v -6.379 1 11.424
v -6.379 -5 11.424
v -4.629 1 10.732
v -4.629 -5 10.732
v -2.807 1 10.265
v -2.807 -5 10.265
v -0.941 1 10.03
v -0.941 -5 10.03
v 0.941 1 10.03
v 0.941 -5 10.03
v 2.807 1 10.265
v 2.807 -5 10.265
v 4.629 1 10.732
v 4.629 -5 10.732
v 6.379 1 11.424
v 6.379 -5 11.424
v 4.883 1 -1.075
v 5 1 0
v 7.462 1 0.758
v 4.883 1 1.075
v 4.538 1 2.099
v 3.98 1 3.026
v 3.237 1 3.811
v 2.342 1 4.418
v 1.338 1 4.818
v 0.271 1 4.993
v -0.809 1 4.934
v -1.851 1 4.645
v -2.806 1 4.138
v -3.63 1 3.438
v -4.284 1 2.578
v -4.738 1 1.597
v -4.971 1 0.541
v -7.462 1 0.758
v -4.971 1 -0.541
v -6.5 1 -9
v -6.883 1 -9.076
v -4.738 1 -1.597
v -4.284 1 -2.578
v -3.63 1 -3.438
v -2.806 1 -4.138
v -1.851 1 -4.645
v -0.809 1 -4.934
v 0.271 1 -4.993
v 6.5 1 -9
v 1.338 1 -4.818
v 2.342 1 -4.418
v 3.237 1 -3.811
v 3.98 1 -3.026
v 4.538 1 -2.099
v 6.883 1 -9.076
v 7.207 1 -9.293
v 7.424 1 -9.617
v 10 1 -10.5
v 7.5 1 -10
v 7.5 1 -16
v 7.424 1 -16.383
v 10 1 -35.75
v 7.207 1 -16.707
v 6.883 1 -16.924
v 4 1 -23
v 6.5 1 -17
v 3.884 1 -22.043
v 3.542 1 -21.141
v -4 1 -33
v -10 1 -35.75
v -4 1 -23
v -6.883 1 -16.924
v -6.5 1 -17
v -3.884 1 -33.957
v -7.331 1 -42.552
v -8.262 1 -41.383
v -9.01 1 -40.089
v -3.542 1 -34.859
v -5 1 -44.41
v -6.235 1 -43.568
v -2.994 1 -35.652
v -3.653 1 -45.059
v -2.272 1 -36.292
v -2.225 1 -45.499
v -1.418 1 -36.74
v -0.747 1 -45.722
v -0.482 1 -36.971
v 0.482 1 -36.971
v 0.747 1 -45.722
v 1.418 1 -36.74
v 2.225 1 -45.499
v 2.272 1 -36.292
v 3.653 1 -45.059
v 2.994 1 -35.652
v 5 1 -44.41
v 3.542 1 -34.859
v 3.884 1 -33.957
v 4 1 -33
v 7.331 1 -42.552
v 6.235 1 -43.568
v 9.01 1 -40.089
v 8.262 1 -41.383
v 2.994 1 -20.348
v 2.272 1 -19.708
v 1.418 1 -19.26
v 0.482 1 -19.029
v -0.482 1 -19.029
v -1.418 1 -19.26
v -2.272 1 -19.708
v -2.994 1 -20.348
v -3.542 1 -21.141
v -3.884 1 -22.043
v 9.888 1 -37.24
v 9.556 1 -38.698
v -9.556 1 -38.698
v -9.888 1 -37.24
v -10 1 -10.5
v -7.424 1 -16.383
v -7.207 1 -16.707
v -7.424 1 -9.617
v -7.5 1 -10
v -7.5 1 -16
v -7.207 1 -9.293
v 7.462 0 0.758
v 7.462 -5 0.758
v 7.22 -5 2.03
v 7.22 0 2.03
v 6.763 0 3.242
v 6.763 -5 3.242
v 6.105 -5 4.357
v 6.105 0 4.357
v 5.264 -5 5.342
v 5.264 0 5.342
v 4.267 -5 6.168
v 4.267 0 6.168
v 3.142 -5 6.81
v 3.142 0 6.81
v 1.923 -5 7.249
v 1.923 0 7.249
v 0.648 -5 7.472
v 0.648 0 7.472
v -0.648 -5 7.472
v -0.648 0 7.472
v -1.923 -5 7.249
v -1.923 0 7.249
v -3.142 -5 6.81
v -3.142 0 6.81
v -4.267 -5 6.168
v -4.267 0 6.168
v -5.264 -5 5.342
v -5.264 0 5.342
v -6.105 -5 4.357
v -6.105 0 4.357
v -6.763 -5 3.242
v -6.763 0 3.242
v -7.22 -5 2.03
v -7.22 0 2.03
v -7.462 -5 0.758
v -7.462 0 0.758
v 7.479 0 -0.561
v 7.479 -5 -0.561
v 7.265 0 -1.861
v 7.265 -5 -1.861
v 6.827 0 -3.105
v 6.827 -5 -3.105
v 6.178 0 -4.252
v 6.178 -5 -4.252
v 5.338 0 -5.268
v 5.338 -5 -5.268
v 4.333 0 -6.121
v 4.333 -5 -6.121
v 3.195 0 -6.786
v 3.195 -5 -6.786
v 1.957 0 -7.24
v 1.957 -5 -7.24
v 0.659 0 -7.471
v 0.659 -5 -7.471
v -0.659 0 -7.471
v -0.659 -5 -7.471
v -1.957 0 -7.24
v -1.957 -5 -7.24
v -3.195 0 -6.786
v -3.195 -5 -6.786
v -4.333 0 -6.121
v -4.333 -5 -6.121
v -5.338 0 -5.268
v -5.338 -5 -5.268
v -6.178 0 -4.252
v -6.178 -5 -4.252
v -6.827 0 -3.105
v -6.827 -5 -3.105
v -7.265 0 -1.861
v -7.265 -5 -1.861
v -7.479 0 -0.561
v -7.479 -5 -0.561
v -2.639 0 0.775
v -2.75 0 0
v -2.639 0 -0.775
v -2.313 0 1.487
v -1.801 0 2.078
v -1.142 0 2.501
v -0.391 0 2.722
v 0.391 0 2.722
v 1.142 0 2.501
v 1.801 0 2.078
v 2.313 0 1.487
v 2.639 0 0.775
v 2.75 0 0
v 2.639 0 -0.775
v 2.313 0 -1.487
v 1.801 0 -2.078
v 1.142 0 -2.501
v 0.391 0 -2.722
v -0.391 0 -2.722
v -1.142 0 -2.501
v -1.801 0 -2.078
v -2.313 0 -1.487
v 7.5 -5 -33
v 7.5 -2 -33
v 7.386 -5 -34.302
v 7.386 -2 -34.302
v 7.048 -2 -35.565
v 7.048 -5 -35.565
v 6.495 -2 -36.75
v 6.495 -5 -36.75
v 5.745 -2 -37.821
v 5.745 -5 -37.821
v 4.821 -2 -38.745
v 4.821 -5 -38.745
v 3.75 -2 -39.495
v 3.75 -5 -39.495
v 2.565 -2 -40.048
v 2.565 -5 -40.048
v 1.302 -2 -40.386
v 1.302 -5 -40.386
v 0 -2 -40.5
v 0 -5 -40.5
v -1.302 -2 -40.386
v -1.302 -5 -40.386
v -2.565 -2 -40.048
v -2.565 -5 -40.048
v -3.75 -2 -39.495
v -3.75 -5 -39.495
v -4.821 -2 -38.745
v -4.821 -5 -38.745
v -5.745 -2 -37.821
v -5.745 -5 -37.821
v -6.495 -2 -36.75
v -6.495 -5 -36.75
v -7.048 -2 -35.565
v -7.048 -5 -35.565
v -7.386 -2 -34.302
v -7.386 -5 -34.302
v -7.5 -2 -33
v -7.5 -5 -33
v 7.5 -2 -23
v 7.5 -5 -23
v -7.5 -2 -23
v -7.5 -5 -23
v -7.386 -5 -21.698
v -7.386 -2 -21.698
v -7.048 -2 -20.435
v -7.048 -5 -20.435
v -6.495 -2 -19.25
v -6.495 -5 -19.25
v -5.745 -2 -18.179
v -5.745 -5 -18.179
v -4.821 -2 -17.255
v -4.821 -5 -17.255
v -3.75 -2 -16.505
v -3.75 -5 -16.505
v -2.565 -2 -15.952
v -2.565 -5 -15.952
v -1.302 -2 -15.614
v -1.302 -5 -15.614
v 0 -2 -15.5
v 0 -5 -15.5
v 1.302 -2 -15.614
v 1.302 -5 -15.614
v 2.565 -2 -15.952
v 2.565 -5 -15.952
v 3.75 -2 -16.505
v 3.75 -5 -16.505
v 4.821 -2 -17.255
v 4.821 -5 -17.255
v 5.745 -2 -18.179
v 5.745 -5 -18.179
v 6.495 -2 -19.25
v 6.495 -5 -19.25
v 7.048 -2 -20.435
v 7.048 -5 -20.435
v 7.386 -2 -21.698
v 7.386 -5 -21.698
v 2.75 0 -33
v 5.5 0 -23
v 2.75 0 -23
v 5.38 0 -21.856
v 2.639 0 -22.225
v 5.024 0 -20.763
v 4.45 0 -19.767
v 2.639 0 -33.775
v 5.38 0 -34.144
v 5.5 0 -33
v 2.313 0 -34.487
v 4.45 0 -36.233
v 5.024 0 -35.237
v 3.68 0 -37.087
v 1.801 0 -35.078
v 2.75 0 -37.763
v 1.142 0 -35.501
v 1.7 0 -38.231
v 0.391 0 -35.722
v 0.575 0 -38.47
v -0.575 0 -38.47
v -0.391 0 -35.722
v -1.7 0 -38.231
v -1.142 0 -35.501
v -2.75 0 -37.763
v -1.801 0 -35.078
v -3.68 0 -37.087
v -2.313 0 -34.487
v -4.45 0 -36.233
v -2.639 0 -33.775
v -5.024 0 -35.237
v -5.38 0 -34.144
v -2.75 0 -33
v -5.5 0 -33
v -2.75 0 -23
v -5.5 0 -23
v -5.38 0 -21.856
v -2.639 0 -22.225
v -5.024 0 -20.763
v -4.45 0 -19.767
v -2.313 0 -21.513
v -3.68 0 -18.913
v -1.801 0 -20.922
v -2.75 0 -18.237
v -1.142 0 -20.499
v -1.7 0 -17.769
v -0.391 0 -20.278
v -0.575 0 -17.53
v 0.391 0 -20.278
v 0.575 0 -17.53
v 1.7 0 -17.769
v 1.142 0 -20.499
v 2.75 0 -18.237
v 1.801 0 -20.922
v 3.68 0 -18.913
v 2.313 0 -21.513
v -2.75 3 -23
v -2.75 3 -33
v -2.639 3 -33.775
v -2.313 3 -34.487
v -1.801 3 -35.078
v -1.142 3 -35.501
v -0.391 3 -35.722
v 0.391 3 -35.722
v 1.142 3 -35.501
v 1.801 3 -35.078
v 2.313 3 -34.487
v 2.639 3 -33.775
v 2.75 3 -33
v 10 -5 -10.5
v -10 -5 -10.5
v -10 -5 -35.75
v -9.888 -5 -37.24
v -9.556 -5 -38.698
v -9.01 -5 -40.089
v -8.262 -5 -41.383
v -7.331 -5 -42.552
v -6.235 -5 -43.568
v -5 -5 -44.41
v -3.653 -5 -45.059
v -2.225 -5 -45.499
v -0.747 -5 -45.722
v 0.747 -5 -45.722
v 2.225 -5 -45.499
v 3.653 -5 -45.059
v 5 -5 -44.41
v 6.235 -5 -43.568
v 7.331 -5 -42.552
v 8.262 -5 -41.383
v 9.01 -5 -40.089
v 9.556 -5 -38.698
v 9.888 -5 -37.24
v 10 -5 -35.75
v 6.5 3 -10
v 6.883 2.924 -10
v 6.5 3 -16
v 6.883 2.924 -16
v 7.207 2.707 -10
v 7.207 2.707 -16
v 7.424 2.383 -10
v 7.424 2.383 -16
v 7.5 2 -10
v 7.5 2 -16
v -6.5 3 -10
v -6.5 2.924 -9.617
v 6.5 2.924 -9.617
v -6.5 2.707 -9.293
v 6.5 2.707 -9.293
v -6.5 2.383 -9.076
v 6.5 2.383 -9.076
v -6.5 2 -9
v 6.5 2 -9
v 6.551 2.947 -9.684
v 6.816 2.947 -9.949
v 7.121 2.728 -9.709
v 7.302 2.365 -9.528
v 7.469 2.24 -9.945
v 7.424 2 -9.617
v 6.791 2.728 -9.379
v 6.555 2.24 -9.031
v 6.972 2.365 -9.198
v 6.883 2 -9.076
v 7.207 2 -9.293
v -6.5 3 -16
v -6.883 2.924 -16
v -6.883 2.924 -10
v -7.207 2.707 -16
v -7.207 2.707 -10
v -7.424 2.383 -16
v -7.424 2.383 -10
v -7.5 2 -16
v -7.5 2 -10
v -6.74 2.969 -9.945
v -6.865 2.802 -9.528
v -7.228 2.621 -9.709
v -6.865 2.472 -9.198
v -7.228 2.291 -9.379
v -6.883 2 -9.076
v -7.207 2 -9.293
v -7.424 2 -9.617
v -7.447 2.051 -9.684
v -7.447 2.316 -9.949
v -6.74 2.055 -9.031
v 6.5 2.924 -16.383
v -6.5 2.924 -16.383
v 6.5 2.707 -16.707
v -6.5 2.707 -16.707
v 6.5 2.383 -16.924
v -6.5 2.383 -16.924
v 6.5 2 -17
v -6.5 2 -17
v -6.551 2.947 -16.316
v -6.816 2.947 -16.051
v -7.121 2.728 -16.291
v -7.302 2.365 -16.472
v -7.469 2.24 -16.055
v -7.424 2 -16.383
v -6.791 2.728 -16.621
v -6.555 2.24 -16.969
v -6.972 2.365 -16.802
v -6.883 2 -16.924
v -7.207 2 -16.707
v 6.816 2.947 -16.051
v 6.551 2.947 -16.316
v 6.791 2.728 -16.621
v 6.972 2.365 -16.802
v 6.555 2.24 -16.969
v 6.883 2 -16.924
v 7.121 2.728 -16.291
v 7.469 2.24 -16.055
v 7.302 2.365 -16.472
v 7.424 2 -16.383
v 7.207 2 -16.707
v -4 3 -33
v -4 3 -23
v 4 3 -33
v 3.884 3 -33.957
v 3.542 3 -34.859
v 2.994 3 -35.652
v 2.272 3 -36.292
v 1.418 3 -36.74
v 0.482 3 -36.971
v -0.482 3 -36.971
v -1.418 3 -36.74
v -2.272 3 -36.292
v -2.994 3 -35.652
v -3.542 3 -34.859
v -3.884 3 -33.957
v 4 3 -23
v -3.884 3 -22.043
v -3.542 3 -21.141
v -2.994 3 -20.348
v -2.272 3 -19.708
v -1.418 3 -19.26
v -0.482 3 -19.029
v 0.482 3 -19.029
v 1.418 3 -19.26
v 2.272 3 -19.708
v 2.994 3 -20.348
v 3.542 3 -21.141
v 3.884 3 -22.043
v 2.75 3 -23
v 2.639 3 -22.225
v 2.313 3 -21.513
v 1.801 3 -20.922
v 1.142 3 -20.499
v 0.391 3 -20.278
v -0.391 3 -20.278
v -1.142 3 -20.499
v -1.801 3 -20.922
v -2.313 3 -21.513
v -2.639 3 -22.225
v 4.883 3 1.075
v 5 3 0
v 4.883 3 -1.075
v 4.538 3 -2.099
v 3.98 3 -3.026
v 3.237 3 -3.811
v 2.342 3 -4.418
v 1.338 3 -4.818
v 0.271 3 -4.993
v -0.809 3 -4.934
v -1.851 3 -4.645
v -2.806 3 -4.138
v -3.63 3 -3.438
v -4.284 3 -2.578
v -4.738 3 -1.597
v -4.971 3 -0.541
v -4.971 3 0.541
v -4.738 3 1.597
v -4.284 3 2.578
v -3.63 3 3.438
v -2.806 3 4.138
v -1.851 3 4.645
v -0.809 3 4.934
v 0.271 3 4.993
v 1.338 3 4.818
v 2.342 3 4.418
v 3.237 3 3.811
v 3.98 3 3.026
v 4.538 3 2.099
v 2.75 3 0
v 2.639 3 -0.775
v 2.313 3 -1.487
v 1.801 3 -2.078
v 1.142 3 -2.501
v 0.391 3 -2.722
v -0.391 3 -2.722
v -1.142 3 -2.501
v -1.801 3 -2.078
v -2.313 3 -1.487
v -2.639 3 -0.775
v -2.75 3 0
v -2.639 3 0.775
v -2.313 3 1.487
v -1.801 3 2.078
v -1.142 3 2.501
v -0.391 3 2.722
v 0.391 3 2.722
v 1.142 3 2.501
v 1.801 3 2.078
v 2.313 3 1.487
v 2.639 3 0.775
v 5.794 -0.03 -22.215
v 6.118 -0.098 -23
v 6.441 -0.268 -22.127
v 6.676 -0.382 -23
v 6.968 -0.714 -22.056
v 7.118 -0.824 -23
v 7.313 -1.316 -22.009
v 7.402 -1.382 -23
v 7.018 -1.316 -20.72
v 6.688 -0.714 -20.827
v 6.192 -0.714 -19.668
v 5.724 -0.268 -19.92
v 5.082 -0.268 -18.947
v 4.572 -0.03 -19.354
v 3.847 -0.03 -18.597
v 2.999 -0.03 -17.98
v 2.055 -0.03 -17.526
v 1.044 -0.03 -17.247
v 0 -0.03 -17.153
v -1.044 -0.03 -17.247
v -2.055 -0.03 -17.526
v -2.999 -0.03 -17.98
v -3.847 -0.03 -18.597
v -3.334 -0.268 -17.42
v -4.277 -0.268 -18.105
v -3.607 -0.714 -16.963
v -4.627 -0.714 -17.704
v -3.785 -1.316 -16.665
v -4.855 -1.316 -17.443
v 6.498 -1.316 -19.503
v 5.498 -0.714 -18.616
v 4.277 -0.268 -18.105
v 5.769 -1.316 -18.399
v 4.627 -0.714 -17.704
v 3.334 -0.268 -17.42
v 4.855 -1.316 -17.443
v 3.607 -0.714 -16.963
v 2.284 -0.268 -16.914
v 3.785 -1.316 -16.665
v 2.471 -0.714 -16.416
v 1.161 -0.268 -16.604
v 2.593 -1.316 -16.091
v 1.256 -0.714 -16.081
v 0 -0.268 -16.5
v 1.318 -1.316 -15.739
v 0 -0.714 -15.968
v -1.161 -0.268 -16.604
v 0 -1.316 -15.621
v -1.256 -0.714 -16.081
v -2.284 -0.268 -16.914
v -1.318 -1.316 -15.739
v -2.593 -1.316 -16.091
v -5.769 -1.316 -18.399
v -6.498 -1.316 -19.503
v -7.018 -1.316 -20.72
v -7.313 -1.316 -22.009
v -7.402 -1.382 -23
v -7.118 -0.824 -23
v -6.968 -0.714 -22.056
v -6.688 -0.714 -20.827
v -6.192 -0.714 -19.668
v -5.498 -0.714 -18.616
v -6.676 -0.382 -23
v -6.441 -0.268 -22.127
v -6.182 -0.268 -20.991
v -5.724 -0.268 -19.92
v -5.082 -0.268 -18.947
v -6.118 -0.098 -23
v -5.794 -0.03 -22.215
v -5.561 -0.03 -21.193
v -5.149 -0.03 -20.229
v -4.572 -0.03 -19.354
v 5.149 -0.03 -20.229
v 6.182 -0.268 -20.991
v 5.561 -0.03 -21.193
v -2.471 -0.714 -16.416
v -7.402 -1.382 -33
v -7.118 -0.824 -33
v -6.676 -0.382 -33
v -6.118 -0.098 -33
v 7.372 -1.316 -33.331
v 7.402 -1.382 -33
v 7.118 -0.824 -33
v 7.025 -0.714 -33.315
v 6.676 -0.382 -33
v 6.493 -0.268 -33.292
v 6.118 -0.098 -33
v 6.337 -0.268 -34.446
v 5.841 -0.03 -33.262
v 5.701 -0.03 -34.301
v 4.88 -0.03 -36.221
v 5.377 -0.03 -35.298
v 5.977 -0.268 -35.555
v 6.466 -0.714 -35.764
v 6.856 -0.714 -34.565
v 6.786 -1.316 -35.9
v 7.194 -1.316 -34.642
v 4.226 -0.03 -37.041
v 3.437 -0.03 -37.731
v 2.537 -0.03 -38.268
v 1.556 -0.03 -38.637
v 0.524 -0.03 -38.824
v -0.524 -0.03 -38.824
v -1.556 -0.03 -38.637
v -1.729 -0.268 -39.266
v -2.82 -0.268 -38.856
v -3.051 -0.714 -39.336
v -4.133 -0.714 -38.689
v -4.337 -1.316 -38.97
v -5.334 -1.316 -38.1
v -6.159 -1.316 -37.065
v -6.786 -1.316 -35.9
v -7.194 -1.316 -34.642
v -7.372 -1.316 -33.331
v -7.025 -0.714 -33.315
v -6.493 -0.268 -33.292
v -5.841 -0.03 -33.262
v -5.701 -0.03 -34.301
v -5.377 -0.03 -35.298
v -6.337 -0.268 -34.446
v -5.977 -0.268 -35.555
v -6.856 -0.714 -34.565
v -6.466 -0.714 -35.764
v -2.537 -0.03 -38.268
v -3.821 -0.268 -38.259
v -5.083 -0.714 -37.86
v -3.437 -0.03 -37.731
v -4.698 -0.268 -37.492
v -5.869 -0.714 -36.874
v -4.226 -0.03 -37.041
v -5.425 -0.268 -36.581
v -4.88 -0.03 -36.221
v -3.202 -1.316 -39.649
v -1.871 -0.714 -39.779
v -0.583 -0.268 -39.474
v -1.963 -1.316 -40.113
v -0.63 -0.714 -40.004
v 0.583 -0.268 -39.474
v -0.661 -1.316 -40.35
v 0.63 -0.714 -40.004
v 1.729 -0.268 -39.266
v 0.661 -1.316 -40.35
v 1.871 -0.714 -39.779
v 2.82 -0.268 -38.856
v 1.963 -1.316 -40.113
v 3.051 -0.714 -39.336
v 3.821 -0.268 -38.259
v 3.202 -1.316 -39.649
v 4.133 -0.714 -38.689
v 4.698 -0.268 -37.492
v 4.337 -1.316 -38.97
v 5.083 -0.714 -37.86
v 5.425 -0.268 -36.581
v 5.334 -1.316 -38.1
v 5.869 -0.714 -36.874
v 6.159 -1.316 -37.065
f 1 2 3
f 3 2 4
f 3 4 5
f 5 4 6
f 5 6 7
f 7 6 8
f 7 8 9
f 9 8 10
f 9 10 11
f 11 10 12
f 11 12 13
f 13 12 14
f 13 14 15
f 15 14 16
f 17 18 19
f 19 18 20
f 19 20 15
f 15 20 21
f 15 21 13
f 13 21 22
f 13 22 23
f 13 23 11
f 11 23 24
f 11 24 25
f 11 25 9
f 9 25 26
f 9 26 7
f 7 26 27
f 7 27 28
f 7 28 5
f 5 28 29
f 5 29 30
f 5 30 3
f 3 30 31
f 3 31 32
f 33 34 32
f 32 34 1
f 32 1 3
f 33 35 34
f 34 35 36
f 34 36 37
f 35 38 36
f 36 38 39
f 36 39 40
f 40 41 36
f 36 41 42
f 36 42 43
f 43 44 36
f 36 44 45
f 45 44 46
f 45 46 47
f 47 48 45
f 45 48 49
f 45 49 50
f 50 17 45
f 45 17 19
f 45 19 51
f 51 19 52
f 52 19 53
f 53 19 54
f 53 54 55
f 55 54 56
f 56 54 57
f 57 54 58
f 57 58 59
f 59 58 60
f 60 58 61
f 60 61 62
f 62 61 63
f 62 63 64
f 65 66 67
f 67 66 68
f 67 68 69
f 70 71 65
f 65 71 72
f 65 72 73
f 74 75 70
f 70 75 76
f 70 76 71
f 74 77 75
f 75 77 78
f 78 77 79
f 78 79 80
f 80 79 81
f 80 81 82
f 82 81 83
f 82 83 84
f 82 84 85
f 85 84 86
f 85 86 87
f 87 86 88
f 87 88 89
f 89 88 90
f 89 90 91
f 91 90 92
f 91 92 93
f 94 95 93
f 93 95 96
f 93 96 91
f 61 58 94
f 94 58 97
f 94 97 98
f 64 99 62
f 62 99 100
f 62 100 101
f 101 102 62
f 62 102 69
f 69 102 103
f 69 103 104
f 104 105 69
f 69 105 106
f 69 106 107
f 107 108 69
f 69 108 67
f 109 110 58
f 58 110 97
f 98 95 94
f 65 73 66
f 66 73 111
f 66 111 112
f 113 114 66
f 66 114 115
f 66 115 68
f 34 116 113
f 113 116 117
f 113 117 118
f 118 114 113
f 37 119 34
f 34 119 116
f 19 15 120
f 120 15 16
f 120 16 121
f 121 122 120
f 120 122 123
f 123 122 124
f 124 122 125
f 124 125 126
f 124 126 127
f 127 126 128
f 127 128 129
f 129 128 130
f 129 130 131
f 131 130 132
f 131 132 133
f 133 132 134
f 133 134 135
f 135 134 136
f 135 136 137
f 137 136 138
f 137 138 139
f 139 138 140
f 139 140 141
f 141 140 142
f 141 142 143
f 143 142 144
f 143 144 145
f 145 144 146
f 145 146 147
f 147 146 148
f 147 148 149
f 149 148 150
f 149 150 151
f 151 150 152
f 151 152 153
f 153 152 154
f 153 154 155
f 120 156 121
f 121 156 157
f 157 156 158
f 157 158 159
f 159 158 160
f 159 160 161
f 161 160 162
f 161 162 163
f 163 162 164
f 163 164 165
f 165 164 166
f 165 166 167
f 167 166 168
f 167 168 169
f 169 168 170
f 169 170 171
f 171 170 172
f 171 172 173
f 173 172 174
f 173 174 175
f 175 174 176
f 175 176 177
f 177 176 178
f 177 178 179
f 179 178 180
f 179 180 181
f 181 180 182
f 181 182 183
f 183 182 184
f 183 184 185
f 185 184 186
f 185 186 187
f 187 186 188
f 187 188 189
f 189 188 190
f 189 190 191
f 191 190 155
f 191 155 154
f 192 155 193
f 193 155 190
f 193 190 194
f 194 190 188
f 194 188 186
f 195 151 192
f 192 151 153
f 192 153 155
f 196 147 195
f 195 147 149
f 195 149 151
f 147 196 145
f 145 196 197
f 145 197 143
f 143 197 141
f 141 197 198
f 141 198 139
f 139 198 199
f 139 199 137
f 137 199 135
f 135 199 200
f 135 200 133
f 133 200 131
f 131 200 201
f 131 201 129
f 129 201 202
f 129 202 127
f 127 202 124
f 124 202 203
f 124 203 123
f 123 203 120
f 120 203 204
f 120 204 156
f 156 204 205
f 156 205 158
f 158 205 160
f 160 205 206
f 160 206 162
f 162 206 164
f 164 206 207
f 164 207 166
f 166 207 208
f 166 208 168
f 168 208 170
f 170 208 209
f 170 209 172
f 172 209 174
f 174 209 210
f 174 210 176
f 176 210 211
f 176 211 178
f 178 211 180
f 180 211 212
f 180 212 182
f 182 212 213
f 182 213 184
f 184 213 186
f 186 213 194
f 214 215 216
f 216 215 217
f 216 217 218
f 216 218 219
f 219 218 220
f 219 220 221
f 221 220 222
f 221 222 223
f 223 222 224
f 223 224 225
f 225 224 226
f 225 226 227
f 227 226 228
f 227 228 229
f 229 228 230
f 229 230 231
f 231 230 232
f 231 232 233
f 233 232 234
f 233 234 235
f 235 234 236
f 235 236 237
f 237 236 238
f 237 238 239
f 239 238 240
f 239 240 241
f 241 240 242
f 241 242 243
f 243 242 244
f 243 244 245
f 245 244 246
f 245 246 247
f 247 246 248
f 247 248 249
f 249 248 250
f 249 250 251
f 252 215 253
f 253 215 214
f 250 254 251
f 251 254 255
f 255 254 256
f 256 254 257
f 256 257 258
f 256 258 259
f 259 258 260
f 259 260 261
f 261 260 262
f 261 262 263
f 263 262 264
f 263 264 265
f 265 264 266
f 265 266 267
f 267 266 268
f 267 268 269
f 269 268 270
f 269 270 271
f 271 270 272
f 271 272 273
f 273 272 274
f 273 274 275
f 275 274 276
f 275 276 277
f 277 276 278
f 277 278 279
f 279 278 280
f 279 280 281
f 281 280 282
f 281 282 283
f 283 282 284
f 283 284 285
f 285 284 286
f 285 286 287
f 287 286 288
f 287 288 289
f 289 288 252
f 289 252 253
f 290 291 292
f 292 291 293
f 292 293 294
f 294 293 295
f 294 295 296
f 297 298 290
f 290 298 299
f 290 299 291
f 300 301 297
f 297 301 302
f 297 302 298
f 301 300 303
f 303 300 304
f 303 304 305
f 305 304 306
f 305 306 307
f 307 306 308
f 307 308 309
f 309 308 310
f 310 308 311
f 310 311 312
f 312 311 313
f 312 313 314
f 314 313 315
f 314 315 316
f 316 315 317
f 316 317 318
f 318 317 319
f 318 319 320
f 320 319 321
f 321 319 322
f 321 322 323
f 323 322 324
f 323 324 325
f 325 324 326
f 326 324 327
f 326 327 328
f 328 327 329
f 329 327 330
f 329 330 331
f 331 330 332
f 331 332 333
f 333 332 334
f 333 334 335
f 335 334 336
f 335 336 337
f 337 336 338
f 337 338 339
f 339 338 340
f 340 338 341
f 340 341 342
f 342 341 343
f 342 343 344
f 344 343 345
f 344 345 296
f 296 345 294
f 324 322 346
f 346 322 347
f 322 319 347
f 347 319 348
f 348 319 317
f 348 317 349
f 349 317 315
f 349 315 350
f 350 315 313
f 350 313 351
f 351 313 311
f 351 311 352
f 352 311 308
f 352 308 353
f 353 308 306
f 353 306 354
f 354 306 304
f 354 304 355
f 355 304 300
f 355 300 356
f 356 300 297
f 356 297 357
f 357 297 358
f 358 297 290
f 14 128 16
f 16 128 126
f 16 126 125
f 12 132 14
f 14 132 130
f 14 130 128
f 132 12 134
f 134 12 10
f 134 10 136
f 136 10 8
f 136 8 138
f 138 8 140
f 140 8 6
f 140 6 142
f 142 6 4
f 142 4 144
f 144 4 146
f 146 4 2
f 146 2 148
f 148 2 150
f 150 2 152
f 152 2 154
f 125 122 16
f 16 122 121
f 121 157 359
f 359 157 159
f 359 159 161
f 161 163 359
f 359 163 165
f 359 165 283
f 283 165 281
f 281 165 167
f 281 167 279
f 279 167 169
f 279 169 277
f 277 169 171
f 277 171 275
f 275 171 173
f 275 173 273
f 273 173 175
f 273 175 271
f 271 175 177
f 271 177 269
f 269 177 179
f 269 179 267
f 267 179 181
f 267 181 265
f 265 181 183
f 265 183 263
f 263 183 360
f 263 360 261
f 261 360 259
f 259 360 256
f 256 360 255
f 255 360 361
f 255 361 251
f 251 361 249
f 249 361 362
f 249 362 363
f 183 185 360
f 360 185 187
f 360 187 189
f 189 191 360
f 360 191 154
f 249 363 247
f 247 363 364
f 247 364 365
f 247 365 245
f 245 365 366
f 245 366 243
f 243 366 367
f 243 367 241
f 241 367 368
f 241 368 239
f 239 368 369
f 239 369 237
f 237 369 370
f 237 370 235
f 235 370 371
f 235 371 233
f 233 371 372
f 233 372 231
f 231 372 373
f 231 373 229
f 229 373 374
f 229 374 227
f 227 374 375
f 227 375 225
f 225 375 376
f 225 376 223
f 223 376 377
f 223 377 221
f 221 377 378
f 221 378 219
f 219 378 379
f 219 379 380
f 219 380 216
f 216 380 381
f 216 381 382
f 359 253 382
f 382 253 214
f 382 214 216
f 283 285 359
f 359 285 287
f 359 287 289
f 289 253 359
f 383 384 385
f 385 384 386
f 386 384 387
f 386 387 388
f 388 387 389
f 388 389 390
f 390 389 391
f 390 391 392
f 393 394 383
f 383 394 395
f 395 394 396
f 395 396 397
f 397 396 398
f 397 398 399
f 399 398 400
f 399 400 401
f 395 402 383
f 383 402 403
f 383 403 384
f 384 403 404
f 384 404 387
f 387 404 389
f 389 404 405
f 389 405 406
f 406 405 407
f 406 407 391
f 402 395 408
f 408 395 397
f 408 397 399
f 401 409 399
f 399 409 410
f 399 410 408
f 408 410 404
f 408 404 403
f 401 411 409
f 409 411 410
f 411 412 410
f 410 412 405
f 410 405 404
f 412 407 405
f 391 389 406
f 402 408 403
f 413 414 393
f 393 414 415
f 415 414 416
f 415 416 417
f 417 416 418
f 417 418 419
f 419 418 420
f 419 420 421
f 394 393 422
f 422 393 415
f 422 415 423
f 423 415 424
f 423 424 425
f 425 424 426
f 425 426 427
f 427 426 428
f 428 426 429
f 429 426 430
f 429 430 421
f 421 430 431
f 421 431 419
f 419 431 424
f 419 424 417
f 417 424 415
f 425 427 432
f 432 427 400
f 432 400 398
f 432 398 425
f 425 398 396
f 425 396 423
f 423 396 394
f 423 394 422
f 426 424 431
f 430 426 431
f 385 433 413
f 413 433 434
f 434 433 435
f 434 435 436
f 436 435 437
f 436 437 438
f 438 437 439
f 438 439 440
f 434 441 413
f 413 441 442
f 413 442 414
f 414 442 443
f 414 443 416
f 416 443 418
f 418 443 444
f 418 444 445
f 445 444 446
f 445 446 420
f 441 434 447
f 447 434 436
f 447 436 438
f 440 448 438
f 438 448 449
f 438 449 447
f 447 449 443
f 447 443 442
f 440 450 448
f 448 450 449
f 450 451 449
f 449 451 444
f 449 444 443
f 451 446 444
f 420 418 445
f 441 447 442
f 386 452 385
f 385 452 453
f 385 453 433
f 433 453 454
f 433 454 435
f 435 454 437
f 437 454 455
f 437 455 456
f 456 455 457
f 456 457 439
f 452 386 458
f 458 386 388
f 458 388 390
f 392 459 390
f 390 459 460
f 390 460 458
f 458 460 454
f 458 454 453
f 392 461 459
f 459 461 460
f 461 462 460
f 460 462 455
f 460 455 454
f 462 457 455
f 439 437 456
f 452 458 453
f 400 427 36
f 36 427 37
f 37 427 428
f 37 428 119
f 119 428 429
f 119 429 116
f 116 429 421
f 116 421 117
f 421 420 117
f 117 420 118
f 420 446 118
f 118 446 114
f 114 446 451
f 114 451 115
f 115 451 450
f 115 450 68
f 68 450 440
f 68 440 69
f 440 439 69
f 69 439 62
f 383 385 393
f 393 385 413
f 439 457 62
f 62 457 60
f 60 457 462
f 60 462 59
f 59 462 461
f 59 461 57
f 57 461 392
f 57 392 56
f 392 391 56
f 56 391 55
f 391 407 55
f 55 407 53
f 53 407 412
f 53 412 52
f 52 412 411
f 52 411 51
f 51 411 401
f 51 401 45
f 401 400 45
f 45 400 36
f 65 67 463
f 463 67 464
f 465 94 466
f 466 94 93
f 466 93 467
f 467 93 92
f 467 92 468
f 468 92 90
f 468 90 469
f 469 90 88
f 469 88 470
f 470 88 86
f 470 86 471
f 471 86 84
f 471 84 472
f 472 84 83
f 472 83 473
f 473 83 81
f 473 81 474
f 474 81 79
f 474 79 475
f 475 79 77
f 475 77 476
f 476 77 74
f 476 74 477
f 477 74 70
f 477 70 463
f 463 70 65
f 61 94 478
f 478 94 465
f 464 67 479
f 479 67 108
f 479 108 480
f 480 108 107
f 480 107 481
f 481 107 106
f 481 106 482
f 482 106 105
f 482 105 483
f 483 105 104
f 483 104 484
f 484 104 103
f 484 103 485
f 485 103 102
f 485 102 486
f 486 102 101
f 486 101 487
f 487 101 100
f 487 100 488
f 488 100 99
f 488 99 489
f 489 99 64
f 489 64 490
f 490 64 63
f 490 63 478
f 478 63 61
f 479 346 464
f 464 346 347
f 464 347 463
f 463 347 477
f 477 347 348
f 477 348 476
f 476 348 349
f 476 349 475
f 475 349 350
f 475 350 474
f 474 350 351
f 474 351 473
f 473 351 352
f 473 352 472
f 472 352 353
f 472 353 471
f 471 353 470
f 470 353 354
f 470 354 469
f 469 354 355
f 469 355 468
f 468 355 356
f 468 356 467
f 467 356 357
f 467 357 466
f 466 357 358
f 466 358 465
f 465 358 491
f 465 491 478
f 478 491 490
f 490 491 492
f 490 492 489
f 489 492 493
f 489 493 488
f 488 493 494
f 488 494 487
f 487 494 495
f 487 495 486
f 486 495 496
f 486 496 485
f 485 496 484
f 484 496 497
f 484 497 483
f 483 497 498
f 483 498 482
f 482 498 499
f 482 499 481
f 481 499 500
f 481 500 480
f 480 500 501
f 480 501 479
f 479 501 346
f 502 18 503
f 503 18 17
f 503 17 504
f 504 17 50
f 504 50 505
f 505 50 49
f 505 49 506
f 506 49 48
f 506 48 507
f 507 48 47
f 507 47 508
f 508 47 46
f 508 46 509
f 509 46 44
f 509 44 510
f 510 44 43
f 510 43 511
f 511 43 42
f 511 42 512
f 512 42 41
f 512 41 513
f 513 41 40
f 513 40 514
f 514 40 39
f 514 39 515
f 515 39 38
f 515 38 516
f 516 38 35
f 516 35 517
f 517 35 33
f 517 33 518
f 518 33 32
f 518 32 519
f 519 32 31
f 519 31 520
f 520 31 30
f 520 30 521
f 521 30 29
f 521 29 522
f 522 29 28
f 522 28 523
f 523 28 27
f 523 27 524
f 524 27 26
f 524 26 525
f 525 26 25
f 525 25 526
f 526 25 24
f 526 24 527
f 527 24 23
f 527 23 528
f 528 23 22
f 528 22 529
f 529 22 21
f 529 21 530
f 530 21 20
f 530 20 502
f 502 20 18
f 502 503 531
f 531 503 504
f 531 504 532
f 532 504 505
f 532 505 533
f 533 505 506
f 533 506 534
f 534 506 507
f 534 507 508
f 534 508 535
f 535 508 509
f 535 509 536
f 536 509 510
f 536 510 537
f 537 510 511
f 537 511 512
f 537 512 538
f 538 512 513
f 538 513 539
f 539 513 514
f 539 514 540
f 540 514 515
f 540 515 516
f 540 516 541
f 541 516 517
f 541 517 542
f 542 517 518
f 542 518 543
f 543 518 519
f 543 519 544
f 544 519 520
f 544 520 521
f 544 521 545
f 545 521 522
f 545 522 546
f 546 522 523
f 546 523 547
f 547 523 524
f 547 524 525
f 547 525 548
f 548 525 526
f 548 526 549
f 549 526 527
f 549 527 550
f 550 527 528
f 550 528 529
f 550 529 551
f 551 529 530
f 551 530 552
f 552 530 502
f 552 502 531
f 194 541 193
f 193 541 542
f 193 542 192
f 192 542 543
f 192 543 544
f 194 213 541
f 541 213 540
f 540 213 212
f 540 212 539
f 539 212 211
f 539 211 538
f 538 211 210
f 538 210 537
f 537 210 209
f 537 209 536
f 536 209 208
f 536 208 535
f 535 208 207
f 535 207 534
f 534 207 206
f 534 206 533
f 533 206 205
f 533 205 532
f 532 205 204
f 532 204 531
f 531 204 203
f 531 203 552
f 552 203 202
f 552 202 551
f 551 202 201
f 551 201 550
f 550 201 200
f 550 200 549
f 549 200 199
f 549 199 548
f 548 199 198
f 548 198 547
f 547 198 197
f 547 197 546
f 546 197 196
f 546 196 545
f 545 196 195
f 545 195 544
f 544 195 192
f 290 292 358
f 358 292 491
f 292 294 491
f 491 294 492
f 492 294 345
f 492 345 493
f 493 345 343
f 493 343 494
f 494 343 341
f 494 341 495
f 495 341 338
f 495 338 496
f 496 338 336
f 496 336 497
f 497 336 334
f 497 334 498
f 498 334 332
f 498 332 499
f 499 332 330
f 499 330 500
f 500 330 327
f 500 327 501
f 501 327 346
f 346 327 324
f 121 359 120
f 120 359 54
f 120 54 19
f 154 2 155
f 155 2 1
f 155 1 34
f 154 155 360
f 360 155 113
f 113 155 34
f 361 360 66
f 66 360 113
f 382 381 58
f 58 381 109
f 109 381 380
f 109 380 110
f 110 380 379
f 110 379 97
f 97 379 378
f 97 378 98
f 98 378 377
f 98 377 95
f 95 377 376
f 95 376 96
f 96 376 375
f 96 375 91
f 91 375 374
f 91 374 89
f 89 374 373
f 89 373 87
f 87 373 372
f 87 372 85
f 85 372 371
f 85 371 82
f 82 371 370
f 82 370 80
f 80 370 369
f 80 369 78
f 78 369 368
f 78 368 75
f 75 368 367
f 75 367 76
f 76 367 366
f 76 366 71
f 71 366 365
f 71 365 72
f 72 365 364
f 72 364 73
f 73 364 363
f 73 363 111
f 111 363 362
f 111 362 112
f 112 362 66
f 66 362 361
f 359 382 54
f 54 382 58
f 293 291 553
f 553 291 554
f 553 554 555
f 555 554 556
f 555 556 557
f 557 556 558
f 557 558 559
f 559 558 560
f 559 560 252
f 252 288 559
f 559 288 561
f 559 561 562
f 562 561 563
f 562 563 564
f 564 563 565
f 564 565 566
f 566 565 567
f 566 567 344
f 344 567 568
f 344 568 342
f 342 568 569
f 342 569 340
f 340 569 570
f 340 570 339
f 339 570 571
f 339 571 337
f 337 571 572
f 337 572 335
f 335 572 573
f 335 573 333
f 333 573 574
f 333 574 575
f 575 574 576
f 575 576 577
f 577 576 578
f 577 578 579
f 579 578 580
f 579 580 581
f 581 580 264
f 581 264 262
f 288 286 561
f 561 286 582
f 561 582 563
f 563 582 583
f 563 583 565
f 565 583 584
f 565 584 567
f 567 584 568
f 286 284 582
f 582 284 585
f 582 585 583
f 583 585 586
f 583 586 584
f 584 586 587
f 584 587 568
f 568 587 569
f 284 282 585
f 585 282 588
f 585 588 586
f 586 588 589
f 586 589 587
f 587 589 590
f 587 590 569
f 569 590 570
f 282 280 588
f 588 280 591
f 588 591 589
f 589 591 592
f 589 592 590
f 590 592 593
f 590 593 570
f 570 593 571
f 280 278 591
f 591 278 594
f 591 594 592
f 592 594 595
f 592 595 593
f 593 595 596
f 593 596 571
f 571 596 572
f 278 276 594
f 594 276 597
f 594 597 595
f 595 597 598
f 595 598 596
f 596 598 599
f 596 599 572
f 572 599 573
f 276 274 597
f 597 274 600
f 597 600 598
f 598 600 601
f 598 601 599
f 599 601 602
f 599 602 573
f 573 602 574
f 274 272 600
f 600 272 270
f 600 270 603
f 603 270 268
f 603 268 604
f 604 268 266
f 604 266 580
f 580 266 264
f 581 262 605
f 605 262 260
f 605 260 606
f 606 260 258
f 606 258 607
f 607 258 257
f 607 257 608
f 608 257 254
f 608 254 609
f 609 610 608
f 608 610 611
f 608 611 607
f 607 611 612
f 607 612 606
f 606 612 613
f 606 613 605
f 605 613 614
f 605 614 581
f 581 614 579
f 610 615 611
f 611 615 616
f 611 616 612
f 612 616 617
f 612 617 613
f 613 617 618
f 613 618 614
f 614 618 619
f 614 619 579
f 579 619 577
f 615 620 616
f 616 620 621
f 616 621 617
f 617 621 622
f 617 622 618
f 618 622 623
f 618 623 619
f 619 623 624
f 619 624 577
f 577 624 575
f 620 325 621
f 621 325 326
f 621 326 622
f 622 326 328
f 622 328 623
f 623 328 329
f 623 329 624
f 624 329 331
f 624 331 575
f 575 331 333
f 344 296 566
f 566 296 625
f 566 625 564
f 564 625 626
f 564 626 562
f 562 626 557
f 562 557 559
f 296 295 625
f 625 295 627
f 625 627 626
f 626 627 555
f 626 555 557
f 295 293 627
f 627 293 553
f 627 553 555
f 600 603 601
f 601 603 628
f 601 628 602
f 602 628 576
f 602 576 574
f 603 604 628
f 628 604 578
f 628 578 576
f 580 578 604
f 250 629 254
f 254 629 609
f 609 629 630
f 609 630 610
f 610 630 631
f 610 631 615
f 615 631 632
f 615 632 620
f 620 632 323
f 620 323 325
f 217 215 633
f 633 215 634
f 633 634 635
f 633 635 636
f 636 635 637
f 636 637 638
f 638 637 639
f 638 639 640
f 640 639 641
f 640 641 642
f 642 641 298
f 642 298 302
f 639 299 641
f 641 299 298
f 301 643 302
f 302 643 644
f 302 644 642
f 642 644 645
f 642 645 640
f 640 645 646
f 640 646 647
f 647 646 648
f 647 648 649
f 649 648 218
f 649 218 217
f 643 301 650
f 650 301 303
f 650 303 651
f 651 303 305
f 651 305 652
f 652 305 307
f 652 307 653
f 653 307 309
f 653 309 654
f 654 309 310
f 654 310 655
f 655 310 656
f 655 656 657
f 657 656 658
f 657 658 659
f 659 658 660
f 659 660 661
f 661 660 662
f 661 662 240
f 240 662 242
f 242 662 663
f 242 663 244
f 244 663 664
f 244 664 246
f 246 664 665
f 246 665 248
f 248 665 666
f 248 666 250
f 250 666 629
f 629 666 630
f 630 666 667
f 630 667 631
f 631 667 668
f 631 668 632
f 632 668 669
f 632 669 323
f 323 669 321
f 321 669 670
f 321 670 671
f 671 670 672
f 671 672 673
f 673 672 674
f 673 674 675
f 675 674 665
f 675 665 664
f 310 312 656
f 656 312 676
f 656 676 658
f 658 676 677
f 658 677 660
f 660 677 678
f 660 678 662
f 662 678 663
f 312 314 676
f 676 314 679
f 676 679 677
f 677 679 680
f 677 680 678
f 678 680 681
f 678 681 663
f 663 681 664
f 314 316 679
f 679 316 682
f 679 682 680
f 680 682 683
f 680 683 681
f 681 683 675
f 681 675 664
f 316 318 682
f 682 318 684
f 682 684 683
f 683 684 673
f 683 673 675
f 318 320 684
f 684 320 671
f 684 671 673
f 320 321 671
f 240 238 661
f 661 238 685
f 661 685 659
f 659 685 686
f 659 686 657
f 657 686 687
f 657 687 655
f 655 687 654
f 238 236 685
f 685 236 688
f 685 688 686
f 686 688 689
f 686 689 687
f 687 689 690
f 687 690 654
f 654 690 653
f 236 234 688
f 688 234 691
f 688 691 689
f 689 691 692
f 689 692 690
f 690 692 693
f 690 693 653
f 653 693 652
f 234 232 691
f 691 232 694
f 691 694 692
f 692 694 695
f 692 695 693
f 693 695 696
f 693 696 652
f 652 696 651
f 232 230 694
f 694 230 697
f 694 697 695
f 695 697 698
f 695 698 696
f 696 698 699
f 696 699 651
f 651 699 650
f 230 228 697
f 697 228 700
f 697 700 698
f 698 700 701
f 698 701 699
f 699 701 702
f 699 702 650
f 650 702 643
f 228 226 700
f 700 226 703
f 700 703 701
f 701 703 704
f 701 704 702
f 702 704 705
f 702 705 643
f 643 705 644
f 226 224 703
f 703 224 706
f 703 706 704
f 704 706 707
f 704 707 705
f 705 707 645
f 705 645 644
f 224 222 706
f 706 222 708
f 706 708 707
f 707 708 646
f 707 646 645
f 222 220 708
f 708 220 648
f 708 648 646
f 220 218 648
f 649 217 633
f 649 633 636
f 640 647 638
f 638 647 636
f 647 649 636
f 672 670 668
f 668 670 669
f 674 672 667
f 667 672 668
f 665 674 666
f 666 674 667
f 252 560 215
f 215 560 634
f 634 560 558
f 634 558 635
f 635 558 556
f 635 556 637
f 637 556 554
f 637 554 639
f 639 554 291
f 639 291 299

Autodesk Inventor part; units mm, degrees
ref_plane "YZ Plane" through (0, 0, 0) normal (1, 0, 0) x (0, 1, 0)
ref_plane "XZ Plane" through (0, 0, 0) normal (0, 1, 0) x (-1, 0, 0)
ref_plane "XY Plane" through (0, 0, 0) normal (0, 0, 1) x (1, 0, 0)
sketch "Sketch15" plane through (0, 0, 0) normal (0, 1, 0) x (-1, 0, 0)
  circle A0 centre (0, 0) radius 2.75
  circle A1 centre (0, 0) radius 7.5
  line L0 (0, 0) -> (0, -28)
  line L1 (0, -33) -> (0, -23) construction
  line L2 (2.75, -33) -> (2.75, -23)
  line L3 (-2.75, -23) -> (-2.75, -33)
  arc A2 (-2.75, -33) -> (2.75, -33) centre (0, -33) ccw
  arc A3 (2.75, -23) -> (-2.75, -23) centre (0, -23) ccw
  line L4 (0, -43) -> (0, -13) construction
  line L5 (0, 0) -> (0, -14)
  line L6 (-10, -15.5) -> (10, -15.5)
  line L7 (10, -15.5) -> (10, -10.5)
  line L8 (10, -10.5) -> (-10, -10.5)
  line L9 (-10, -10.5) -> (-10, -15.5)
  line L10 (-10, -15.5) -> (10, -10.5) construction
  line L11 (10, -15.5) -> (-10, -10.5) construction
  line L12 (7.4616, 0.7577) -> (10, -10.5)
  line L13 (-7.4616, 0.7577) -> (-10, -10.5)
  line L14 (0, -35.75) -> (0, -20.25) construction
  line L15 (10, -35.75) -> (10, -20.25)
  line L16 (-10, -20.25) -> (-10, -35.75)
  arc A4 (-10, -35.75) -> (10, -35.75) centre (0, -35.75) ccw
  arc A5 (10, -20.25) -> (-10, -20.25) centre (0, -20.25) ccw
  line L17 (10, -15.5) -> (10, -20.25)
  line L18 (-10, -15.5) -> (-10, -20.25)
  line L19 (0, 0) -> (0, 25)
  circle A6 centre (0, 25) radius 2.75
  circle A7 centre (0, 25) radius 5
  line L20 (0, 25) -> (5, 25)
  line L21 (0, 25) -> (-5, 25)
  line L22 (5, 25) -> (7.4616, 0.7577)
  line L23 (-5, 25) -> (-7.4616, 0.7577)
  point P0 (-8.7999, -15.5)
  point P1 (8.7999, -15.5)
  dimension "d102" = 5.5
  dimension "d103" = 15
  dimension "d104" = 28
  dimension "d105" = 5
  dimension "d106" = 5.5
  dimension "d107" = 15
  dimension "d109" = 14
  dimension "d110" = 20
  dimension "d111" = 5
  dimension "d112" = 20
  dimension "d133" = 25
  dimension "d134" = 5.5
  dimension "d135" = 10
extrude "Extrusion14" add sketch "Sketch15" along normal blind 1 contours A0 L19 A1 L0 | A0 L0 A1 L19 | L19 A7 L22 A1 | A1 L23 A7 L19 | L0 A5 L8 L13 A1 | A1 L12 L8 A5 L0 | A7 L21 A6 L19 | L19 A6 L20 A7 | A5 L8 L0 | L0 L8 A5 | L7 L6 A5 L8 | L20 A6 L21 A7 | L8 A5 L6 L9 | L8 A5 L6 L0 | L0 L6 A5 L8 | L17 A5 L6 | L6 A5 L18 | A5 L15 A4 L16 L6
sketch "Sketch16" plane through (0, 1, 0) normal (0, 1, 0) x (1, 0, 0)
  circle A0 centre (0, 0) radius 2.75 projected
  circle A1 centre (0, 0) radius 2.75
  line L0 (-2.75, 23) -> (-2.75, 33) projected
  line L1 (-2.75, 28) -> (0, 28)
  line L2 (0, 33) -> (0, 23) construction
  line L3 (-2.75, 33) -> (-2.75, 23)
  line L4 (2.75, 23) -> (2.75, 33)
  arc A2 (2.75, 33) -> (-2.75, 33) centre (0, 33) ccw
  arc A3 (-2.75, 23) -> (2.75, 23) centre (0, 23) ccw
  line L5 (0, 33) -> (0, 23) construction
  line L6 (-4, 33) -> (-4, 23)
  line L7 (4, 23) -> (4, 33)
  arc A4 (4, 33) -> (-4, 33) centre (0, 33) ccw
  arc A5 (-4, 23) -> (4, 23) centre (0, 23) ccw
  circle A6 centre (0, -25) radius 2.75 projected
  circle A7 centre (0, -25) radius 2.75
  circle A8 centre (0, -25) radius 5
  circle A9 centre (0, 0) radius 5
  point P0 (-7.4616, -0.7577)
  point P1 (-2.75, 33)
  dimension "d115" = 5
  dimension "d116" = 5.5
  dimension "d117" = 5
  dimension "d118" = 8
  dimension "d136" = 5.5
  dimension "d137" = 10
  dimension "d138" = 10
extrude "Extrusion15" add sketch "Sketch16" along normal blind 2
sketch "Sketch17" plane through (0, 1, 0) normal (0, 1, 0) x (1, 0, 0)
  line L0 (0, 0) -> (0, 13)
  line L1 (7.5, 17) -> (-7.5, 17)
  line L2 (-7.5, 17) -> (-7.5, 9)
  line L3 (-7.5, 9) -> (7.5, 9)
  line L4 (7.5, 9) -> (7.5, 17)
  line L5 (7.5, 17) -> (-7.5, 9) construction
  line L6 (-7.5, 17) -> (7.5, 9) construction
  dimension "d121" = 13
  dimension "d129" = 15
  dimension "d130" = 8
extrude "Extrusion16" add sketch "Sketch17" along normal blind 2
fillet "Fillet7" radius 1 4 edges at (-7.5, 2, -9) (-7.5, 2, -17) (7.5, 2, -9) (7.5, 2, -17)
fillet "Fillet8" radius 1 8 edges at (7.2071, 3, -9.2929) (7.5, 3, -13) (7.2071, 3, -16.7071) (0, 3, -17) (-7.2071, 3, -16.7071) (-7.5, 3, -13) (-7.2071, 3, -9.2929) (0, 3, -9)
sketch "Sketch18" plane through (0, 0, 0) normal (0, -1, 0) x (1, 0, 0)
  arc A0 (2.75, -23) -> (-2.75, -23) centre (0, -23) ccw projected
  arc A1 (-2.75, -33) -> (2.75, -33) centre (0, -33) ccw projected
  line L0 (0, -23) -> (0, -33) construction
  line L1 (-7.5, -23) -> (-7.5, -33)
  line L2 (7.5, -33) -> (7.5, -23)
  arc A2 (7.5, -23) -> (-7.5, -23) centre (0, -23) ccw
  arc A3 (-7.5, -33) -> (7.5, -33) centre (0, -33) ccw
  circle A4 centre (0, 0) radius 7.5
  circle A5 centre (0, 25) radius 2.75 projected
  circle A6 centre (0, 25) radius 6
  point P0 (0, -28)
  dimension "d139" = 15
  dimension "d143" = 15
  dimension "d144" = 12
move faces "Move1" translate (0, -5, 0) faces at (-7.5833, 0, -23.0833)
extrude "Extrusion17" cut sketch "Sketch18" along normal blind 10
sketch "Sketch19" plane through (0, -5, -35.75) normal (0, -1, 0) x (1, 0, 0)
  circle A0 centre (0, 60.75) radius 2.75 projected
  circle A1 centre (0, 60.75) radius 15
  point P0 (0, 35.75)
  dimension "d147" = 30
extrude "Extrusion18" cut sketch "Sketch19" against normal through all
fillet "Fillet9" radius 2 4 edges at (0, 0, -15.5) (-7.5, 0, -28) (0, 0, -40.5) (7.5, 0, -28)
properties part number "Belt_Restraint"
